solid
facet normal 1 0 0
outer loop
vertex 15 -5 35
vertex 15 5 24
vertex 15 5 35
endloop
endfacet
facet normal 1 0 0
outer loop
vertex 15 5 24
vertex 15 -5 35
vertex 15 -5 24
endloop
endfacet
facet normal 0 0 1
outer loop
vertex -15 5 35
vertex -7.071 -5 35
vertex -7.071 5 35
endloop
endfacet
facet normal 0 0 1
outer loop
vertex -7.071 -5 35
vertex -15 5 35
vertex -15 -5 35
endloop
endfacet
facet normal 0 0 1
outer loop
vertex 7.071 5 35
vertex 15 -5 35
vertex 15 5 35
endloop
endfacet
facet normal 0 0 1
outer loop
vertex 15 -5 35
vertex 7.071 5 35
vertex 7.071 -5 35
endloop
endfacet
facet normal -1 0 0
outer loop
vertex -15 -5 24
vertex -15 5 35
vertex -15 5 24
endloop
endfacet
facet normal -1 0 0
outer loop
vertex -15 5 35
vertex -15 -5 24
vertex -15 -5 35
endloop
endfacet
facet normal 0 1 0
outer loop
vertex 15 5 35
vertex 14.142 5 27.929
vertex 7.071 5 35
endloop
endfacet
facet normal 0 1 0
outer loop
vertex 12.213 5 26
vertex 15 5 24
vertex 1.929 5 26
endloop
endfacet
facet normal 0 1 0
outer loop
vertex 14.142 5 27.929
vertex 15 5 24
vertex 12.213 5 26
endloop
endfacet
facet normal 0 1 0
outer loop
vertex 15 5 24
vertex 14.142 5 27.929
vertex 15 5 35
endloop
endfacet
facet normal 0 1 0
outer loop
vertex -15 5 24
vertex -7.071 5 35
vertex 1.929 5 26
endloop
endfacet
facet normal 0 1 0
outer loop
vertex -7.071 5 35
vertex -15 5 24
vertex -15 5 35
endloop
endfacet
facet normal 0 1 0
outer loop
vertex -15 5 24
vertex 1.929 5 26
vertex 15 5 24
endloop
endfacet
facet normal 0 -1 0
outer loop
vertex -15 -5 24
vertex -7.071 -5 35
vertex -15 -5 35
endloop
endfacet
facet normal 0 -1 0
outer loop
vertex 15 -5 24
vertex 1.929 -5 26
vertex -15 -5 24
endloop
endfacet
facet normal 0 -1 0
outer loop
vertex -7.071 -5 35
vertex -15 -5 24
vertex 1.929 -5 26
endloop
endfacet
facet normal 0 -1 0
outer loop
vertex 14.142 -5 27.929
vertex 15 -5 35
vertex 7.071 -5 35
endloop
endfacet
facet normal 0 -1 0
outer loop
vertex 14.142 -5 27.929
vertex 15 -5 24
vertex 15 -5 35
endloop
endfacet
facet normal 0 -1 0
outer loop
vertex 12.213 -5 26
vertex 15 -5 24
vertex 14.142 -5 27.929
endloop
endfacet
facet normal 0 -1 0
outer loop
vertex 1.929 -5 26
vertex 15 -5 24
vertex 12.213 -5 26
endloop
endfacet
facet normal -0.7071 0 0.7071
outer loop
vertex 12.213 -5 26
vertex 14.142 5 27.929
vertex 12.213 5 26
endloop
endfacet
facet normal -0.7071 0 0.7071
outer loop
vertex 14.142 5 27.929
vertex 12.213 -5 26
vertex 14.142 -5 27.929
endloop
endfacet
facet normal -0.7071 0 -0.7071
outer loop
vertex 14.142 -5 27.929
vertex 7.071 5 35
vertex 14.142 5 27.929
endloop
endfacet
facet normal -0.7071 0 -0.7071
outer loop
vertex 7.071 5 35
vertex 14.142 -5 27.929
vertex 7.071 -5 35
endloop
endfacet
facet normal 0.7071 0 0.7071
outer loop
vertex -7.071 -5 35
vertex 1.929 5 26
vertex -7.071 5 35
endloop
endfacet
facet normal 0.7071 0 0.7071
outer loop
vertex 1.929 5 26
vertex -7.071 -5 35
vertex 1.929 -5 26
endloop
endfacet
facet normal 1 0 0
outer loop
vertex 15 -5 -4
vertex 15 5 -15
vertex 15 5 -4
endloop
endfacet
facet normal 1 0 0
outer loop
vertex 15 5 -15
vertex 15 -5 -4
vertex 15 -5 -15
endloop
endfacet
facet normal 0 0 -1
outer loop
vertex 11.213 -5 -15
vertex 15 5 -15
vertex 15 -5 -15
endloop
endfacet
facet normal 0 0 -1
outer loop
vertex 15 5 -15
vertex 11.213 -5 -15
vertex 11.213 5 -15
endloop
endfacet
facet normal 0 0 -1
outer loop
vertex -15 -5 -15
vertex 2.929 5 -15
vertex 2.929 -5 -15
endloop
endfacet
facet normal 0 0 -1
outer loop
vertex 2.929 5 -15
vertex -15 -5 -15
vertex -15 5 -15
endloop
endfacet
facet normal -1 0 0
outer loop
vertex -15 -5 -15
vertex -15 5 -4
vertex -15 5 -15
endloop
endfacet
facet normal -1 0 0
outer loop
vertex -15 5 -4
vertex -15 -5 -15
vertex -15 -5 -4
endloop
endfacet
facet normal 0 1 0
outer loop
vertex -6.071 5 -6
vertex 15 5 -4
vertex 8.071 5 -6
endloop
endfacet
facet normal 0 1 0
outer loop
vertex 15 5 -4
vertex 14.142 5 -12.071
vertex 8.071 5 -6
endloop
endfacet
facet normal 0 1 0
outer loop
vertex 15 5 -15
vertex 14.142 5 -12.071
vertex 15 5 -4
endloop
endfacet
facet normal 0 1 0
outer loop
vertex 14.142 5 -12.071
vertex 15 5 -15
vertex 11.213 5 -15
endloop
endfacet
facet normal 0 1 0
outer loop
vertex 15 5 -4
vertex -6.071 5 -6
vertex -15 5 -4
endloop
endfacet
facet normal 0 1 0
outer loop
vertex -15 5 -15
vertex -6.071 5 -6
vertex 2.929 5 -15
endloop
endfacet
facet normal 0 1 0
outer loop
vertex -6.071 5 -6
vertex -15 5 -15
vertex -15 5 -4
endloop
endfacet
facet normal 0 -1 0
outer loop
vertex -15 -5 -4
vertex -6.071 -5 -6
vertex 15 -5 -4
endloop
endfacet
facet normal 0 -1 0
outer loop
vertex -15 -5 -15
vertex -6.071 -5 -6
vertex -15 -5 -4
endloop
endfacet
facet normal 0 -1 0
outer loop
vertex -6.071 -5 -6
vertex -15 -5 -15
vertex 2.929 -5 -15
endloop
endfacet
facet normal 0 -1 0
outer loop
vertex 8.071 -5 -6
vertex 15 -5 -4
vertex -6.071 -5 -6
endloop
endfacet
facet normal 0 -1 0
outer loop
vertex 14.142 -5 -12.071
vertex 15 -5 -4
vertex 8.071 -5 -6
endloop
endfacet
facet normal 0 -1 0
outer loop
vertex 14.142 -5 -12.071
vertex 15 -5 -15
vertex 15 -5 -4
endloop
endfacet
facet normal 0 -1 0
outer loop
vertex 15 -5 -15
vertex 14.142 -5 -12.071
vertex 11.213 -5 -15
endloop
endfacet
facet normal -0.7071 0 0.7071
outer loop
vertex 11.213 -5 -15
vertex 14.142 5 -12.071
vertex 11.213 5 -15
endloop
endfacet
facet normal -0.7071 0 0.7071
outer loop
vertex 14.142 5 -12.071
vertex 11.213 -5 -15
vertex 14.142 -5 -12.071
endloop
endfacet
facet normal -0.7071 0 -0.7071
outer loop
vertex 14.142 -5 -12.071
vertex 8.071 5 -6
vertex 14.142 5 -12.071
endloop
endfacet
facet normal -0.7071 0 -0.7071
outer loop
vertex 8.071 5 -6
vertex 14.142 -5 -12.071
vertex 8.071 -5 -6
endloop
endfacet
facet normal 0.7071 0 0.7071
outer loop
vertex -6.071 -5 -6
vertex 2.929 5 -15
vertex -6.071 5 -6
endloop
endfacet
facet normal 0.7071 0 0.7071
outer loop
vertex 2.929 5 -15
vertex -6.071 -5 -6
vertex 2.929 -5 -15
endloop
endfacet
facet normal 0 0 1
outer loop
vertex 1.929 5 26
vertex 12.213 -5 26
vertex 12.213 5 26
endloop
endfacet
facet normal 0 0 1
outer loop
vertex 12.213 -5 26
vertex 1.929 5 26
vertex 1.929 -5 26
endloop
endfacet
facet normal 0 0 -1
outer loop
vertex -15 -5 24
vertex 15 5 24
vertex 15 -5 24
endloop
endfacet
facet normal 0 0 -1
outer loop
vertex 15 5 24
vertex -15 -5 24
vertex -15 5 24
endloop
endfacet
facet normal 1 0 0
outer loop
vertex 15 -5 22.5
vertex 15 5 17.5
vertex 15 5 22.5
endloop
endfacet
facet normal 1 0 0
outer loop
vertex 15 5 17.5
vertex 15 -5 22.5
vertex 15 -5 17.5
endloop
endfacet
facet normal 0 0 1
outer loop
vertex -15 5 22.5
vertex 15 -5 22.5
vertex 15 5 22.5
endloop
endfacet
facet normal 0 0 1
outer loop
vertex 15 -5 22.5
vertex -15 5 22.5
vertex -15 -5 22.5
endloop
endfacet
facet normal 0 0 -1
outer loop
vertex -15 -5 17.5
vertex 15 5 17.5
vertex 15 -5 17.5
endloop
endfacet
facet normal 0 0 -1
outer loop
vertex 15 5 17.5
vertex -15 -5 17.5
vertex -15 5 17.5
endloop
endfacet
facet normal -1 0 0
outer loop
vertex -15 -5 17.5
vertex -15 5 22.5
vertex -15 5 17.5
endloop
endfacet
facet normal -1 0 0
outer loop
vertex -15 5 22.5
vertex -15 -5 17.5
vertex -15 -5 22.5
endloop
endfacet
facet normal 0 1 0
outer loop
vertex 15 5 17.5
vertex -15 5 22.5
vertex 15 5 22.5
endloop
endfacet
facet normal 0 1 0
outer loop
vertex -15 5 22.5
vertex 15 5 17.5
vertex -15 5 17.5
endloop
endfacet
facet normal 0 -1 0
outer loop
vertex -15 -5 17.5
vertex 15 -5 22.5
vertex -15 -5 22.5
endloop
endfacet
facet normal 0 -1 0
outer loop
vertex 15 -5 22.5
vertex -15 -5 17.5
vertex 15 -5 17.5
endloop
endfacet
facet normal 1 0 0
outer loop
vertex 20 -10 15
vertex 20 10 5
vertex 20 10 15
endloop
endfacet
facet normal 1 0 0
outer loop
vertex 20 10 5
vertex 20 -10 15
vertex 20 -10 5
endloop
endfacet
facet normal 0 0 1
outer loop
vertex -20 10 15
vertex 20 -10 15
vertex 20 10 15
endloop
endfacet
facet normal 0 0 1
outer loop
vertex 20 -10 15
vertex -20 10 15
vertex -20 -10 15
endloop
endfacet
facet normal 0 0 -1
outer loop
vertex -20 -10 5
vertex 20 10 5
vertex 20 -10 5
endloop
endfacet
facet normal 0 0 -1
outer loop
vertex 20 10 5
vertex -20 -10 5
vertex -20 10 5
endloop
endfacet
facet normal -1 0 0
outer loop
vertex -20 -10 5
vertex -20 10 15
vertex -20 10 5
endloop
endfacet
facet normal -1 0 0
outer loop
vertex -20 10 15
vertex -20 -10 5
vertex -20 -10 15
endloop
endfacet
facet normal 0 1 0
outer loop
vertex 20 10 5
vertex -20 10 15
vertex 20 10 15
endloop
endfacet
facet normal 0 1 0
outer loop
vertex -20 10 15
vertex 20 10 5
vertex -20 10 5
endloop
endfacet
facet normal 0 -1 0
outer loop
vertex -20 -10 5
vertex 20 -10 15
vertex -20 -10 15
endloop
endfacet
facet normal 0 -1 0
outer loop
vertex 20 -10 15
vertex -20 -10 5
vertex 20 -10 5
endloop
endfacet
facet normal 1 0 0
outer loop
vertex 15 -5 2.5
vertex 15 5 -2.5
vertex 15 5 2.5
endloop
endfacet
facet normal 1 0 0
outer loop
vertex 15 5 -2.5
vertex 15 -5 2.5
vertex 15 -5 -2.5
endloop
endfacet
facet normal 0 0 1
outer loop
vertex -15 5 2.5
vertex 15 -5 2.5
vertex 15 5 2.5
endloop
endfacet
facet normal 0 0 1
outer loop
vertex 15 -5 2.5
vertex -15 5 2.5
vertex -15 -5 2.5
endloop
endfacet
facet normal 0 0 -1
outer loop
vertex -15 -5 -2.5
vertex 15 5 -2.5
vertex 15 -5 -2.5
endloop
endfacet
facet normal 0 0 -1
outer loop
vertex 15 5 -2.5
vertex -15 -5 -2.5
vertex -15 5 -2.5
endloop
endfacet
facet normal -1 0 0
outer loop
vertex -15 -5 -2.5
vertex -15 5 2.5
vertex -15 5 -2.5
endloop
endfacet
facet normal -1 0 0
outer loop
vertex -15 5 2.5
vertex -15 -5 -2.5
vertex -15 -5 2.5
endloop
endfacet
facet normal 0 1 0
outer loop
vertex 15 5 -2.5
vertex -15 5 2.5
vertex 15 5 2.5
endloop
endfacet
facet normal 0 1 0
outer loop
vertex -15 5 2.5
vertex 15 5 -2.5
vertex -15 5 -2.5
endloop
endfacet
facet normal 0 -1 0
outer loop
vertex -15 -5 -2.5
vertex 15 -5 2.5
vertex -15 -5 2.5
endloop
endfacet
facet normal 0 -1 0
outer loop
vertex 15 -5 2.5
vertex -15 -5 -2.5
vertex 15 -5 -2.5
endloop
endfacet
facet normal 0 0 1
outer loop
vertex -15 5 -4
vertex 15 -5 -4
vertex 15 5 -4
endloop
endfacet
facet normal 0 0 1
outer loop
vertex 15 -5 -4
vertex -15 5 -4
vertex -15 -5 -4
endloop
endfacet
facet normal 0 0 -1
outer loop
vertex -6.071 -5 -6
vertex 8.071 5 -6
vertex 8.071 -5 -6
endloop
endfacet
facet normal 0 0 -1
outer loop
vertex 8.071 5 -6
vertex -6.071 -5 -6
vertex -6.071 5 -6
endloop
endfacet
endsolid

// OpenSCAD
// Define dimensions for components
module central_block() {
    cube([40, 20, 10], center = true);
}

module angled_connector() {
    difference() {
        cube([30, 10, 10], center = true);
        translate([0, 0, 5])
            rotate([0, 45, 0])
            cube([30, 10, 10], center = true);
    }
}

module flat_connector() {
    cube([30, 10, 5], center = true);
}

module spacer() {
    cube([30, 10, 2], center = true);
}

module bolt() {
    cylinder(h = 20, r = 1.5, center = true);
}

module nut() {
    translate([0, 0, -1])
        cylinder(h = 2, r = 3, center = true);
}

// Assemble the model
module flexible_coupling() {
    // Layer 1: Angled Connector 1
    translate([0, 0, 30])
        angled_connector();

    // Layer 2: Spacer 1
    translate([0, 0, 25])
        spacer();

    // Layer 3: Flat Connector 1
    translate([0, 0, 20])
        flat_connector();

    // Layer 4: Central Block
    translate([0, 0, 10])
        central_block();

    // Layer 5: Flat Connector 2
    translate([0, 0, 0])
        flat_connector();

    // Layer 6: Spacer 2
    translate([0, 0, -5])
        spacer();

    // Layer 7: Angled Connector 2
    translate([0, 0, -10])
        angled_connector();
}

// Render the model
flexible_coupling();
